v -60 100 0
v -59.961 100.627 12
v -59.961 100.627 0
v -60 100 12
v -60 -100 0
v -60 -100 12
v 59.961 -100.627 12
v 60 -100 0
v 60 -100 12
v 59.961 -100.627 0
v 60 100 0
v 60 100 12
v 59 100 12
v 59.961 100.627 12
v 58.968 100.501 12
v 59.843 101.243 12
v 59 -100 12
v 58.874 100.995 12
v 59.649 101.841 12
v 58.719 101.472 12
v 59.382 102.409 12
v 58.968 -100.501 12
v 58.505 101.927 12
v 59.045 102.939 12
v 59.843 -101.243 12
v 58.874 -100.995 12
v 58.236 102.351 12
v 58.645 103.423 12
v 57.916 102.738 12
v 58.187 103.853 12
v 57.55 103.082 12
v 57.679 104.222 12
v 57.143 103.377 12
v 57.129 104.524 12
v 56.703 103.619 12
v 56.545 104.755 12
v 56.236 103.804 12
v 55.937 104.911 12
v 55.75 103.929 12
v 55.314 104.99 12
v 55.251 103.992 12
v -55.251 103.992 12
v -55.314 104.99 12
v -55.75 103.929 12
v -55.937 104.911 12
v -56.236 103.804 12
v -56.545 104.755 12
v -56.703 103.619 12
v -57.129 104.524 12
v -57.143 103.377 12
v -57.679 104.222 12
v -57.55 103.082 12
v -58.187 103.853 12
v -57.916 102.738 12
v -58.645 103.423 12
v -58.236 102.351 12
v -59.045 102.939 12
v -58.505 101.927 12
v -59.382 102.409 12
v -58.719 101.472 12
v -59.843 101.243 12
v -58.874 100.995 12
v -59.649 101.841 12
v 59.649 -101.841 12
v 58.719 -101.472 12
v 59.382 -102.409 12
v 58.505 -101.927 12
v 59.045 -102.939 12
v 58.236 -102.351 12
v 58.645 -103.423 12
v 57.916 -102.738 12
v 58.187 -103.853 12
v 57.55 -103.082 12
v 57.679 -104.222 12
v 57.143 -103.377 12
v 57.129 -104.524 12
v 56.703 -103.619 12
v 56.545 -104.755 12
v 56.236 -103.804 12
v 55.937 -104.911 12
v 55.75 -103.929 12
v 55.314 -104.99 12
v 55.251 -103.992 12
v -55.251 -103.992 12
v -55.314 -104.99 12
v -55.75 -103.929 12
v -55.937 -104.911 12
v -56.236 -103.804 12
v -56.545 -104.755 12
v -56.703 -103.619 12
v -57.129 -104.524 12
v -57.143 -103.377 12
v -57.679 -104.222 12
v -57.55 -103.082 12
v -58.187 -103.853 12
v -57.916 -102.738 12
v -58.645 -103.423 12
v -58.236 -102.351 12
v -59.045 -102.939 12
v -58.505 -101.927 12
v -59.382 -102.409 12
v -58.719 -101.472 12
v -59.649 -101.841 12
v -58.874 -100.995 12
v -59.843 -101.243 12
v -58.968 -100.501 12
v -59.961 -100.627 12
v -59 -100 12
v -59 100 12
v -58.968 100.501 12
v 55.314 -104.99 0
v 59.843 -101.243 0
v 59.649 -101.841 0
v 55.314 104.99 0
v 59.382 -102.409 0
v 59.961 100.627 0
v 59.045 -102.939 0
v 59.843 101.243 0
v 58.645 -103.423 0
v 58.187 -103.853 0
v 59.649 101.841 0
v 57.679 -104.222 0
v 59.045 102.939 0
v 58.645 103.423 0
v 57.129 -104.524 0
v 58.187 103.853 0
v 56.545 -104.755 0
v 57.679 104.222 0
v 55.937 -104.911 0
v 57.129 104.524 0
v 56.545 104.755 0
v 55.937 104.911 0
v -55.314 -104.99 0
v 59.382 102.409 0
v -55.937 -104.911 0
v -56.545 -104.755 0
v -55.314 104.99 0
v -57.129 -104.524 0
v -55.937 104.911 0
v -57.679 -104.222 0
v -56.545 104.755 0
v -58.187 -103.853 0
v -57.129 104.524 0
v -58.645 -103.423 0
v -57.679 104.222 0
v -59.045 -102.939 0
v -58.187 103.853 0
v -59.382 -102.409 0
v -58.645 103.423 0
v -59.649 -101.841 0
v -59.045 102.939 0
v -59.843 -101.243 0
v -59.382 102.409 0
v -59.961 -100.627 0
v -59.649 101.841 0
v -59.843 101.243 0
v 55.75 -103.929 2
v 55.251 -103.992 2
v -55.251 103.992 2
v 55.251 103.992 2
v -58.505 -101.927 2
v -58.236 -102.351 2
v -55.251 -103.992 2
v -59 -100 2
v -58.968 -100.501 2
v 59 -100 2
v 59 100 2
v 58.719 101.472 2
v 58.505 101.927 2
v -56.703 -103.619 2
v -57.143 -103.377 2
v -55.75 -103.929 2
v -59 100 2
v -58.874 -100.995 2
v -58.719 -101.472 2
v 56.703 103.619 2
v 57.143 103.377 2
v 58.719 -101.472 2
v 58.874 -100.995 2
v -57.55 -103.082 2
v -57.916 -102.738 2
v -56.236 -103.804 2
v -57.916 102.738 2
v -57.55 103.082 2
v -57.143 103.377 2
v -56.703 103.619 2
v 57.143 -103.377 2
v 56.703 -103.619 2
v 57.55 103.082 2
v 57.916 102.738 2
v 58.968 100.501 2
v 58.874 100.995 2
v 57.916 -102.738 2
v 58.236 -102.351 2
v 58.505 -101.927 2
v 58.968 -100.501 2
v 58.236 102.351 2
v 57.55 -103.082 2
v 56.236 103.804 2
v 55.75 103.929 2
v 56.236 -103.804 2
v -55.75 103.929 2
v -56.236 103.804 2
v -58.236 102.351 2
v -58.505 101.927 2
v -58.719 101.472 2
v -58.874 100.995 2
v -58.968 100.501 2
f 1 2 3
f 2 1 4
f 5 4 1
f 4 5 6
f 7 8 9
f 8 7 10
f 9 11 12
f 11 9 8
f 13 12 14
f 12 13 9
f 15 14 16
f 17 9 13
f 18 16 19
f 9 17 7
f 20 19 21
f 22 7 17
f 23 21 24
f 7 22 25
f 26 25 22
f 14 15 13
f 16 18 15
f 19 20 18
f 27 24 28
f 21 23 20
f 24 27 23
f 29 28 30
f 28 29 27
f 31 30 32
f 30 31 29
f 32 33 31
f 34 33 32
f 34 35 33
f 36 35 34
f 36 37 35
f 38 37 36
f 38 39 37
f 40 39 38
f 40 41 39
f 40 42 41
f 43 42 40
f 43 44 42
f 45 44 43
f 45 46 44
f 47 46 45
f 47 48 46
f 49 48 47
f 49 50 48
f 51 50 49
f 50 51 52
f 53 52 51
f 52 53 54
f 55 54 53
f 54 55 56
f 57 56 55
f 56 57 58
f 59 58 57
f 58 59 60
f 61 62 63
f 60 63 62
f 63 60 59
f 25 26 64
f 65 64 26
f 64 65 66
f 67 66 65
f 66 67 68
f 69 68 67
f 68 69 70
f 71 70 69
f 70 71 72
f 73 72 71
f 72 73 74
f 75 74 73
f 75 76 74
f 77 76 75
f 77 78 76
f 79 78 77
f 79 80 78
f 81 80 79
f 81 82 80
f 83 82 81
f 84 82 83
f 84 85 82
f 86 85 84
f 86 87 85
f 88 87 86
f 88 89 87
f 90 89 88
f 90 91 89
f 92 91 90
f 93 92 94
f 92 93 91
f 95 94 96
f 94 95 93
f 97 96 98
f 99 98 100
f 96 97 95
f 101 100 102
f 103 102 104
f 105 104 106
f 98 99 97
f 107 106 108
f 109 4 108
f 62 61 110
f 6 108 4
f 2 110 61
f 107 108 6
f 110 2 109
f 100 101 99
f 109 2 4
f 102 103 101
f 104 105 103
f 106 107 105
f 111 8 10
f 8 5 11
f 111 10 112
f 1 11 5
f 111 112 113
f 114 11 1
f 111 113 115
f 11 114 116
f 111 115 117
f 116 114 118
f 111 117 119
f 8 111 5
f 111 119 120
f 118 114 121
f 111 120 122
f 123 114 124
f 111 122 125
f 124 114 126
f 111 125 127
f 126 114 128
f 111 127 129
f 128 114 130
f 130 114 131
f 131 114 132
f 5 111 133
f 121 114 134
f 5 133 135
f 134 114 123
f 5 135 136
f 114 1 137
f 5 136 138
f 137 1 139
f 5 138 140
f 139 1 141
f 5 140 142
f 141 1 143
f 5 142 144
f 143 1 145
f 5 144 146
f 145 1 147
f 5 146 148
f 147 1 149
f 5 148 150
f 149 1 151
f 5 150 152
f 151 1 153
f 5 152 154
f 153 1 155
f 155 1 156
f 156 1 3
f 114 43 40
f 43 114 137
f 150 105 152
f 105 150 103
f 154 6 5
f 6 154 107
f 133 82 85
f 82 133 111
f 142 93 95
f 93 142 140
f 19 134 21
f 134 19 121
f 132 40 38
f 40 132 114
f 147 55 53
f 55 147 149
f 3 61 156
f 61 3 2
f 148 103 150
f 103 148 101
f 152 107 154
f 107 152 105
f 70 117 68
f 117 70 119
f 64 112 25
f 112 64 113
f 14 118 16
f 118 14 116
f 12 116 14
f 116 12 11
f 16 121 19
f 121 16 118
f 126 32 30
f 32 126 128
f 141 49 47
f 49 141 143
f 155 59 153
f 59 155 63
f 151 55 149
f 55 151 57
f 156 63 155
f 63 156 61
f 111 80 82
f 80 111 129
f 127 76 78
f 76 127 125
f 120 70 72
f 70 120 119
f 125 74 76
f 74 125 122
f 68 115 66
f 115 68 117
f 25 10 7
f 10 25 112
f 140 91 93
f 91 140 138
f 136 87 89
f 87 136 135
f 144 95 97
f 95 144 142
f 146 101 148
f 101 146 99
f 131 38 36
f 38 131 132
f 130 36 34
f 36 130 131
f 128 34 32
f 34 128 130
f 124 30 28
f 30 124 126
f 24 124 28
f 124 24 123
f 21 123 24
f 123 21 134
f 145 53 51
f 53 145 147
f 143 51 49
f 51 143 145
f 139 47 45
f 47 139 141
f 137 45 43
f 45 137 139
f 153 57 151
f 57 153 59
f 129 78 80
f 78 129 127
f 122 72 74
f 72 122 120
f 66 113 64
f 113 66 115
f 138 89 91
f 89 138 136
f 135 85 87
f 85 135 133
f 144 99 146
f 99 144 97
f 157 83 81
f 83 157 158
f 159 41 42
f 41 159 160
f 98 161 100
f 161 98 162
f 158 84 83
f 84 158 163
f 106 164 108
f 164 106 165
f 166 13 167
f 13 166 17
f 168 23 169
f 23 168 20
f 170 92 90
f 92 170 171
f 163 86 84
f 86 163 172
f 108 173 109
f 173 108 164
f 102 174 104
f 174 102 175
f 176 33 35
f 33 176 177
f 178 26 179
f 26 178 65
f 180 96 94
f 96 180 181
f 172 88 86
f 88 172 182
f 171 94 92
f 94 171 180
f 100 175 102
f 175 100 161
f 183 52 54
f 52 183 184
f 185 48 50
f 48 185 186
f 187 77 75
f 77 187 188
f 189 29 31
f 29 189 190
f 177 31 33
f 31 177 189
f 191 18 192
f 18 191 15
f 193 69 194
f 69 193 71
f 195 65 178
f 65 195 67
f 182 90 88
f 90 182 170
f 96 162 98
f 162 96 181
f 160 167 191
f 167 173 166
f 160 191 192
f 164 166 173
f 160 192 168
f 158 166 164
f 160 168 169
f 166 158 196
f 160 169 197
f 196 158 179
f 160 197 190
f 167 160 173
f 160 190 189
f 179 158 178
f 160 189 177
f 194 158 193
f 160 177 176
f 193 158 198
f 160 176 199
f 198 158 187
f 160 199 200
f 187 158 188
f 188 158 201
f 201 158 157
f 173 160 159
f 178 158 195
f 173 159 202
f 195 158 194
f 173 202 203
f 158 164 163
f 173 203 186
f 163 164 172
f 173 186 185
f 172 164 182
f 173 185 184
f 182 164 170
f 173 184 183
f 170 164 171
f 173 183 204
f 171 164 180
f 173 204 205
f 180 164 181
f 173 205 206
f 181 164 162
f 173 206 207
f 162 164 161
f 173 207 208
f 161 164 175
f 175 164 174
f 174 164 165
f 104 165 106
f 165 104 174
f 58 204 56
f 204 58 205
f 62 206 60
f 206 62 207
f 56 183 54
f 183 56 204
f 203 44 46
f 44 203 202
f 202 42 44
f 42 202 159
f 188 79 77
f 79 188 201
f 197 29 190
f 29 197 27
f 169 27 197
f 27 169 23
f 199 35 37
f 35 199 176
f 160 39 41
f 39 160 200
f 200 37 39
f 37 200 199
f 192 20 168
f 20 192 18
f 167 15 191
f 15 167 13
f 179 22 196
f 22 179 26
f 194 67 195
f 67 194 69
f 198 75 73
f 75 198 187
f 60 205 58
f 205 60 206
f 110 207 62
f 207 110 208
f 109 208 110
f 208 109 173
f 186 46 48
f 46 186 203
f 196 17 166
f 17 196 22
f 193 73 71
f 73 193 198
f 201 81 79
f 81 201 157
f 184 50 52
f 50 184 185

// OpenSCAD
$fn = 50;


difference() {
	union() {
		hull() {
			translate(v = [-55.0000000000, 100.0000000000, 0]) {
				cylinder(h = 12, r = 5);
			}
			translate(v = [55.0000000000, 100.0000000000, 0]) {
				cylinder(h = 12, r = 5);
			}
			translate(v = [-55.0000000000, -100.0000000000, 0]) {
				cylinder(h = 12, r = 5);
			}
			translate(v = [55.0000000000, -100.0000000000, 0]) {
				cylinder(h = 12, r = 5);
			}
		}
	}
	union() {
		translate(v = [0, 0, 2]) {
			hull() {
				translate(v = [-55.0000000000, 100.0000000000, 0]) {
					cylinder(h = 10, r = 4);
				}
				translate(v = [55.0000000000, 100.0000000000, 0]) {
					cylinder(h = 10, r = 4);
				}
				translate(v = [-55.0000000000, -100.0000000000, 0]) {
					cylinder(h = 10, r = 4);
				}
				translate(v = [55.0000000000, -100.0000000000, 0]) {
					cylinder(h = 10, r = 4);
				}
			}
		}
	}
}
